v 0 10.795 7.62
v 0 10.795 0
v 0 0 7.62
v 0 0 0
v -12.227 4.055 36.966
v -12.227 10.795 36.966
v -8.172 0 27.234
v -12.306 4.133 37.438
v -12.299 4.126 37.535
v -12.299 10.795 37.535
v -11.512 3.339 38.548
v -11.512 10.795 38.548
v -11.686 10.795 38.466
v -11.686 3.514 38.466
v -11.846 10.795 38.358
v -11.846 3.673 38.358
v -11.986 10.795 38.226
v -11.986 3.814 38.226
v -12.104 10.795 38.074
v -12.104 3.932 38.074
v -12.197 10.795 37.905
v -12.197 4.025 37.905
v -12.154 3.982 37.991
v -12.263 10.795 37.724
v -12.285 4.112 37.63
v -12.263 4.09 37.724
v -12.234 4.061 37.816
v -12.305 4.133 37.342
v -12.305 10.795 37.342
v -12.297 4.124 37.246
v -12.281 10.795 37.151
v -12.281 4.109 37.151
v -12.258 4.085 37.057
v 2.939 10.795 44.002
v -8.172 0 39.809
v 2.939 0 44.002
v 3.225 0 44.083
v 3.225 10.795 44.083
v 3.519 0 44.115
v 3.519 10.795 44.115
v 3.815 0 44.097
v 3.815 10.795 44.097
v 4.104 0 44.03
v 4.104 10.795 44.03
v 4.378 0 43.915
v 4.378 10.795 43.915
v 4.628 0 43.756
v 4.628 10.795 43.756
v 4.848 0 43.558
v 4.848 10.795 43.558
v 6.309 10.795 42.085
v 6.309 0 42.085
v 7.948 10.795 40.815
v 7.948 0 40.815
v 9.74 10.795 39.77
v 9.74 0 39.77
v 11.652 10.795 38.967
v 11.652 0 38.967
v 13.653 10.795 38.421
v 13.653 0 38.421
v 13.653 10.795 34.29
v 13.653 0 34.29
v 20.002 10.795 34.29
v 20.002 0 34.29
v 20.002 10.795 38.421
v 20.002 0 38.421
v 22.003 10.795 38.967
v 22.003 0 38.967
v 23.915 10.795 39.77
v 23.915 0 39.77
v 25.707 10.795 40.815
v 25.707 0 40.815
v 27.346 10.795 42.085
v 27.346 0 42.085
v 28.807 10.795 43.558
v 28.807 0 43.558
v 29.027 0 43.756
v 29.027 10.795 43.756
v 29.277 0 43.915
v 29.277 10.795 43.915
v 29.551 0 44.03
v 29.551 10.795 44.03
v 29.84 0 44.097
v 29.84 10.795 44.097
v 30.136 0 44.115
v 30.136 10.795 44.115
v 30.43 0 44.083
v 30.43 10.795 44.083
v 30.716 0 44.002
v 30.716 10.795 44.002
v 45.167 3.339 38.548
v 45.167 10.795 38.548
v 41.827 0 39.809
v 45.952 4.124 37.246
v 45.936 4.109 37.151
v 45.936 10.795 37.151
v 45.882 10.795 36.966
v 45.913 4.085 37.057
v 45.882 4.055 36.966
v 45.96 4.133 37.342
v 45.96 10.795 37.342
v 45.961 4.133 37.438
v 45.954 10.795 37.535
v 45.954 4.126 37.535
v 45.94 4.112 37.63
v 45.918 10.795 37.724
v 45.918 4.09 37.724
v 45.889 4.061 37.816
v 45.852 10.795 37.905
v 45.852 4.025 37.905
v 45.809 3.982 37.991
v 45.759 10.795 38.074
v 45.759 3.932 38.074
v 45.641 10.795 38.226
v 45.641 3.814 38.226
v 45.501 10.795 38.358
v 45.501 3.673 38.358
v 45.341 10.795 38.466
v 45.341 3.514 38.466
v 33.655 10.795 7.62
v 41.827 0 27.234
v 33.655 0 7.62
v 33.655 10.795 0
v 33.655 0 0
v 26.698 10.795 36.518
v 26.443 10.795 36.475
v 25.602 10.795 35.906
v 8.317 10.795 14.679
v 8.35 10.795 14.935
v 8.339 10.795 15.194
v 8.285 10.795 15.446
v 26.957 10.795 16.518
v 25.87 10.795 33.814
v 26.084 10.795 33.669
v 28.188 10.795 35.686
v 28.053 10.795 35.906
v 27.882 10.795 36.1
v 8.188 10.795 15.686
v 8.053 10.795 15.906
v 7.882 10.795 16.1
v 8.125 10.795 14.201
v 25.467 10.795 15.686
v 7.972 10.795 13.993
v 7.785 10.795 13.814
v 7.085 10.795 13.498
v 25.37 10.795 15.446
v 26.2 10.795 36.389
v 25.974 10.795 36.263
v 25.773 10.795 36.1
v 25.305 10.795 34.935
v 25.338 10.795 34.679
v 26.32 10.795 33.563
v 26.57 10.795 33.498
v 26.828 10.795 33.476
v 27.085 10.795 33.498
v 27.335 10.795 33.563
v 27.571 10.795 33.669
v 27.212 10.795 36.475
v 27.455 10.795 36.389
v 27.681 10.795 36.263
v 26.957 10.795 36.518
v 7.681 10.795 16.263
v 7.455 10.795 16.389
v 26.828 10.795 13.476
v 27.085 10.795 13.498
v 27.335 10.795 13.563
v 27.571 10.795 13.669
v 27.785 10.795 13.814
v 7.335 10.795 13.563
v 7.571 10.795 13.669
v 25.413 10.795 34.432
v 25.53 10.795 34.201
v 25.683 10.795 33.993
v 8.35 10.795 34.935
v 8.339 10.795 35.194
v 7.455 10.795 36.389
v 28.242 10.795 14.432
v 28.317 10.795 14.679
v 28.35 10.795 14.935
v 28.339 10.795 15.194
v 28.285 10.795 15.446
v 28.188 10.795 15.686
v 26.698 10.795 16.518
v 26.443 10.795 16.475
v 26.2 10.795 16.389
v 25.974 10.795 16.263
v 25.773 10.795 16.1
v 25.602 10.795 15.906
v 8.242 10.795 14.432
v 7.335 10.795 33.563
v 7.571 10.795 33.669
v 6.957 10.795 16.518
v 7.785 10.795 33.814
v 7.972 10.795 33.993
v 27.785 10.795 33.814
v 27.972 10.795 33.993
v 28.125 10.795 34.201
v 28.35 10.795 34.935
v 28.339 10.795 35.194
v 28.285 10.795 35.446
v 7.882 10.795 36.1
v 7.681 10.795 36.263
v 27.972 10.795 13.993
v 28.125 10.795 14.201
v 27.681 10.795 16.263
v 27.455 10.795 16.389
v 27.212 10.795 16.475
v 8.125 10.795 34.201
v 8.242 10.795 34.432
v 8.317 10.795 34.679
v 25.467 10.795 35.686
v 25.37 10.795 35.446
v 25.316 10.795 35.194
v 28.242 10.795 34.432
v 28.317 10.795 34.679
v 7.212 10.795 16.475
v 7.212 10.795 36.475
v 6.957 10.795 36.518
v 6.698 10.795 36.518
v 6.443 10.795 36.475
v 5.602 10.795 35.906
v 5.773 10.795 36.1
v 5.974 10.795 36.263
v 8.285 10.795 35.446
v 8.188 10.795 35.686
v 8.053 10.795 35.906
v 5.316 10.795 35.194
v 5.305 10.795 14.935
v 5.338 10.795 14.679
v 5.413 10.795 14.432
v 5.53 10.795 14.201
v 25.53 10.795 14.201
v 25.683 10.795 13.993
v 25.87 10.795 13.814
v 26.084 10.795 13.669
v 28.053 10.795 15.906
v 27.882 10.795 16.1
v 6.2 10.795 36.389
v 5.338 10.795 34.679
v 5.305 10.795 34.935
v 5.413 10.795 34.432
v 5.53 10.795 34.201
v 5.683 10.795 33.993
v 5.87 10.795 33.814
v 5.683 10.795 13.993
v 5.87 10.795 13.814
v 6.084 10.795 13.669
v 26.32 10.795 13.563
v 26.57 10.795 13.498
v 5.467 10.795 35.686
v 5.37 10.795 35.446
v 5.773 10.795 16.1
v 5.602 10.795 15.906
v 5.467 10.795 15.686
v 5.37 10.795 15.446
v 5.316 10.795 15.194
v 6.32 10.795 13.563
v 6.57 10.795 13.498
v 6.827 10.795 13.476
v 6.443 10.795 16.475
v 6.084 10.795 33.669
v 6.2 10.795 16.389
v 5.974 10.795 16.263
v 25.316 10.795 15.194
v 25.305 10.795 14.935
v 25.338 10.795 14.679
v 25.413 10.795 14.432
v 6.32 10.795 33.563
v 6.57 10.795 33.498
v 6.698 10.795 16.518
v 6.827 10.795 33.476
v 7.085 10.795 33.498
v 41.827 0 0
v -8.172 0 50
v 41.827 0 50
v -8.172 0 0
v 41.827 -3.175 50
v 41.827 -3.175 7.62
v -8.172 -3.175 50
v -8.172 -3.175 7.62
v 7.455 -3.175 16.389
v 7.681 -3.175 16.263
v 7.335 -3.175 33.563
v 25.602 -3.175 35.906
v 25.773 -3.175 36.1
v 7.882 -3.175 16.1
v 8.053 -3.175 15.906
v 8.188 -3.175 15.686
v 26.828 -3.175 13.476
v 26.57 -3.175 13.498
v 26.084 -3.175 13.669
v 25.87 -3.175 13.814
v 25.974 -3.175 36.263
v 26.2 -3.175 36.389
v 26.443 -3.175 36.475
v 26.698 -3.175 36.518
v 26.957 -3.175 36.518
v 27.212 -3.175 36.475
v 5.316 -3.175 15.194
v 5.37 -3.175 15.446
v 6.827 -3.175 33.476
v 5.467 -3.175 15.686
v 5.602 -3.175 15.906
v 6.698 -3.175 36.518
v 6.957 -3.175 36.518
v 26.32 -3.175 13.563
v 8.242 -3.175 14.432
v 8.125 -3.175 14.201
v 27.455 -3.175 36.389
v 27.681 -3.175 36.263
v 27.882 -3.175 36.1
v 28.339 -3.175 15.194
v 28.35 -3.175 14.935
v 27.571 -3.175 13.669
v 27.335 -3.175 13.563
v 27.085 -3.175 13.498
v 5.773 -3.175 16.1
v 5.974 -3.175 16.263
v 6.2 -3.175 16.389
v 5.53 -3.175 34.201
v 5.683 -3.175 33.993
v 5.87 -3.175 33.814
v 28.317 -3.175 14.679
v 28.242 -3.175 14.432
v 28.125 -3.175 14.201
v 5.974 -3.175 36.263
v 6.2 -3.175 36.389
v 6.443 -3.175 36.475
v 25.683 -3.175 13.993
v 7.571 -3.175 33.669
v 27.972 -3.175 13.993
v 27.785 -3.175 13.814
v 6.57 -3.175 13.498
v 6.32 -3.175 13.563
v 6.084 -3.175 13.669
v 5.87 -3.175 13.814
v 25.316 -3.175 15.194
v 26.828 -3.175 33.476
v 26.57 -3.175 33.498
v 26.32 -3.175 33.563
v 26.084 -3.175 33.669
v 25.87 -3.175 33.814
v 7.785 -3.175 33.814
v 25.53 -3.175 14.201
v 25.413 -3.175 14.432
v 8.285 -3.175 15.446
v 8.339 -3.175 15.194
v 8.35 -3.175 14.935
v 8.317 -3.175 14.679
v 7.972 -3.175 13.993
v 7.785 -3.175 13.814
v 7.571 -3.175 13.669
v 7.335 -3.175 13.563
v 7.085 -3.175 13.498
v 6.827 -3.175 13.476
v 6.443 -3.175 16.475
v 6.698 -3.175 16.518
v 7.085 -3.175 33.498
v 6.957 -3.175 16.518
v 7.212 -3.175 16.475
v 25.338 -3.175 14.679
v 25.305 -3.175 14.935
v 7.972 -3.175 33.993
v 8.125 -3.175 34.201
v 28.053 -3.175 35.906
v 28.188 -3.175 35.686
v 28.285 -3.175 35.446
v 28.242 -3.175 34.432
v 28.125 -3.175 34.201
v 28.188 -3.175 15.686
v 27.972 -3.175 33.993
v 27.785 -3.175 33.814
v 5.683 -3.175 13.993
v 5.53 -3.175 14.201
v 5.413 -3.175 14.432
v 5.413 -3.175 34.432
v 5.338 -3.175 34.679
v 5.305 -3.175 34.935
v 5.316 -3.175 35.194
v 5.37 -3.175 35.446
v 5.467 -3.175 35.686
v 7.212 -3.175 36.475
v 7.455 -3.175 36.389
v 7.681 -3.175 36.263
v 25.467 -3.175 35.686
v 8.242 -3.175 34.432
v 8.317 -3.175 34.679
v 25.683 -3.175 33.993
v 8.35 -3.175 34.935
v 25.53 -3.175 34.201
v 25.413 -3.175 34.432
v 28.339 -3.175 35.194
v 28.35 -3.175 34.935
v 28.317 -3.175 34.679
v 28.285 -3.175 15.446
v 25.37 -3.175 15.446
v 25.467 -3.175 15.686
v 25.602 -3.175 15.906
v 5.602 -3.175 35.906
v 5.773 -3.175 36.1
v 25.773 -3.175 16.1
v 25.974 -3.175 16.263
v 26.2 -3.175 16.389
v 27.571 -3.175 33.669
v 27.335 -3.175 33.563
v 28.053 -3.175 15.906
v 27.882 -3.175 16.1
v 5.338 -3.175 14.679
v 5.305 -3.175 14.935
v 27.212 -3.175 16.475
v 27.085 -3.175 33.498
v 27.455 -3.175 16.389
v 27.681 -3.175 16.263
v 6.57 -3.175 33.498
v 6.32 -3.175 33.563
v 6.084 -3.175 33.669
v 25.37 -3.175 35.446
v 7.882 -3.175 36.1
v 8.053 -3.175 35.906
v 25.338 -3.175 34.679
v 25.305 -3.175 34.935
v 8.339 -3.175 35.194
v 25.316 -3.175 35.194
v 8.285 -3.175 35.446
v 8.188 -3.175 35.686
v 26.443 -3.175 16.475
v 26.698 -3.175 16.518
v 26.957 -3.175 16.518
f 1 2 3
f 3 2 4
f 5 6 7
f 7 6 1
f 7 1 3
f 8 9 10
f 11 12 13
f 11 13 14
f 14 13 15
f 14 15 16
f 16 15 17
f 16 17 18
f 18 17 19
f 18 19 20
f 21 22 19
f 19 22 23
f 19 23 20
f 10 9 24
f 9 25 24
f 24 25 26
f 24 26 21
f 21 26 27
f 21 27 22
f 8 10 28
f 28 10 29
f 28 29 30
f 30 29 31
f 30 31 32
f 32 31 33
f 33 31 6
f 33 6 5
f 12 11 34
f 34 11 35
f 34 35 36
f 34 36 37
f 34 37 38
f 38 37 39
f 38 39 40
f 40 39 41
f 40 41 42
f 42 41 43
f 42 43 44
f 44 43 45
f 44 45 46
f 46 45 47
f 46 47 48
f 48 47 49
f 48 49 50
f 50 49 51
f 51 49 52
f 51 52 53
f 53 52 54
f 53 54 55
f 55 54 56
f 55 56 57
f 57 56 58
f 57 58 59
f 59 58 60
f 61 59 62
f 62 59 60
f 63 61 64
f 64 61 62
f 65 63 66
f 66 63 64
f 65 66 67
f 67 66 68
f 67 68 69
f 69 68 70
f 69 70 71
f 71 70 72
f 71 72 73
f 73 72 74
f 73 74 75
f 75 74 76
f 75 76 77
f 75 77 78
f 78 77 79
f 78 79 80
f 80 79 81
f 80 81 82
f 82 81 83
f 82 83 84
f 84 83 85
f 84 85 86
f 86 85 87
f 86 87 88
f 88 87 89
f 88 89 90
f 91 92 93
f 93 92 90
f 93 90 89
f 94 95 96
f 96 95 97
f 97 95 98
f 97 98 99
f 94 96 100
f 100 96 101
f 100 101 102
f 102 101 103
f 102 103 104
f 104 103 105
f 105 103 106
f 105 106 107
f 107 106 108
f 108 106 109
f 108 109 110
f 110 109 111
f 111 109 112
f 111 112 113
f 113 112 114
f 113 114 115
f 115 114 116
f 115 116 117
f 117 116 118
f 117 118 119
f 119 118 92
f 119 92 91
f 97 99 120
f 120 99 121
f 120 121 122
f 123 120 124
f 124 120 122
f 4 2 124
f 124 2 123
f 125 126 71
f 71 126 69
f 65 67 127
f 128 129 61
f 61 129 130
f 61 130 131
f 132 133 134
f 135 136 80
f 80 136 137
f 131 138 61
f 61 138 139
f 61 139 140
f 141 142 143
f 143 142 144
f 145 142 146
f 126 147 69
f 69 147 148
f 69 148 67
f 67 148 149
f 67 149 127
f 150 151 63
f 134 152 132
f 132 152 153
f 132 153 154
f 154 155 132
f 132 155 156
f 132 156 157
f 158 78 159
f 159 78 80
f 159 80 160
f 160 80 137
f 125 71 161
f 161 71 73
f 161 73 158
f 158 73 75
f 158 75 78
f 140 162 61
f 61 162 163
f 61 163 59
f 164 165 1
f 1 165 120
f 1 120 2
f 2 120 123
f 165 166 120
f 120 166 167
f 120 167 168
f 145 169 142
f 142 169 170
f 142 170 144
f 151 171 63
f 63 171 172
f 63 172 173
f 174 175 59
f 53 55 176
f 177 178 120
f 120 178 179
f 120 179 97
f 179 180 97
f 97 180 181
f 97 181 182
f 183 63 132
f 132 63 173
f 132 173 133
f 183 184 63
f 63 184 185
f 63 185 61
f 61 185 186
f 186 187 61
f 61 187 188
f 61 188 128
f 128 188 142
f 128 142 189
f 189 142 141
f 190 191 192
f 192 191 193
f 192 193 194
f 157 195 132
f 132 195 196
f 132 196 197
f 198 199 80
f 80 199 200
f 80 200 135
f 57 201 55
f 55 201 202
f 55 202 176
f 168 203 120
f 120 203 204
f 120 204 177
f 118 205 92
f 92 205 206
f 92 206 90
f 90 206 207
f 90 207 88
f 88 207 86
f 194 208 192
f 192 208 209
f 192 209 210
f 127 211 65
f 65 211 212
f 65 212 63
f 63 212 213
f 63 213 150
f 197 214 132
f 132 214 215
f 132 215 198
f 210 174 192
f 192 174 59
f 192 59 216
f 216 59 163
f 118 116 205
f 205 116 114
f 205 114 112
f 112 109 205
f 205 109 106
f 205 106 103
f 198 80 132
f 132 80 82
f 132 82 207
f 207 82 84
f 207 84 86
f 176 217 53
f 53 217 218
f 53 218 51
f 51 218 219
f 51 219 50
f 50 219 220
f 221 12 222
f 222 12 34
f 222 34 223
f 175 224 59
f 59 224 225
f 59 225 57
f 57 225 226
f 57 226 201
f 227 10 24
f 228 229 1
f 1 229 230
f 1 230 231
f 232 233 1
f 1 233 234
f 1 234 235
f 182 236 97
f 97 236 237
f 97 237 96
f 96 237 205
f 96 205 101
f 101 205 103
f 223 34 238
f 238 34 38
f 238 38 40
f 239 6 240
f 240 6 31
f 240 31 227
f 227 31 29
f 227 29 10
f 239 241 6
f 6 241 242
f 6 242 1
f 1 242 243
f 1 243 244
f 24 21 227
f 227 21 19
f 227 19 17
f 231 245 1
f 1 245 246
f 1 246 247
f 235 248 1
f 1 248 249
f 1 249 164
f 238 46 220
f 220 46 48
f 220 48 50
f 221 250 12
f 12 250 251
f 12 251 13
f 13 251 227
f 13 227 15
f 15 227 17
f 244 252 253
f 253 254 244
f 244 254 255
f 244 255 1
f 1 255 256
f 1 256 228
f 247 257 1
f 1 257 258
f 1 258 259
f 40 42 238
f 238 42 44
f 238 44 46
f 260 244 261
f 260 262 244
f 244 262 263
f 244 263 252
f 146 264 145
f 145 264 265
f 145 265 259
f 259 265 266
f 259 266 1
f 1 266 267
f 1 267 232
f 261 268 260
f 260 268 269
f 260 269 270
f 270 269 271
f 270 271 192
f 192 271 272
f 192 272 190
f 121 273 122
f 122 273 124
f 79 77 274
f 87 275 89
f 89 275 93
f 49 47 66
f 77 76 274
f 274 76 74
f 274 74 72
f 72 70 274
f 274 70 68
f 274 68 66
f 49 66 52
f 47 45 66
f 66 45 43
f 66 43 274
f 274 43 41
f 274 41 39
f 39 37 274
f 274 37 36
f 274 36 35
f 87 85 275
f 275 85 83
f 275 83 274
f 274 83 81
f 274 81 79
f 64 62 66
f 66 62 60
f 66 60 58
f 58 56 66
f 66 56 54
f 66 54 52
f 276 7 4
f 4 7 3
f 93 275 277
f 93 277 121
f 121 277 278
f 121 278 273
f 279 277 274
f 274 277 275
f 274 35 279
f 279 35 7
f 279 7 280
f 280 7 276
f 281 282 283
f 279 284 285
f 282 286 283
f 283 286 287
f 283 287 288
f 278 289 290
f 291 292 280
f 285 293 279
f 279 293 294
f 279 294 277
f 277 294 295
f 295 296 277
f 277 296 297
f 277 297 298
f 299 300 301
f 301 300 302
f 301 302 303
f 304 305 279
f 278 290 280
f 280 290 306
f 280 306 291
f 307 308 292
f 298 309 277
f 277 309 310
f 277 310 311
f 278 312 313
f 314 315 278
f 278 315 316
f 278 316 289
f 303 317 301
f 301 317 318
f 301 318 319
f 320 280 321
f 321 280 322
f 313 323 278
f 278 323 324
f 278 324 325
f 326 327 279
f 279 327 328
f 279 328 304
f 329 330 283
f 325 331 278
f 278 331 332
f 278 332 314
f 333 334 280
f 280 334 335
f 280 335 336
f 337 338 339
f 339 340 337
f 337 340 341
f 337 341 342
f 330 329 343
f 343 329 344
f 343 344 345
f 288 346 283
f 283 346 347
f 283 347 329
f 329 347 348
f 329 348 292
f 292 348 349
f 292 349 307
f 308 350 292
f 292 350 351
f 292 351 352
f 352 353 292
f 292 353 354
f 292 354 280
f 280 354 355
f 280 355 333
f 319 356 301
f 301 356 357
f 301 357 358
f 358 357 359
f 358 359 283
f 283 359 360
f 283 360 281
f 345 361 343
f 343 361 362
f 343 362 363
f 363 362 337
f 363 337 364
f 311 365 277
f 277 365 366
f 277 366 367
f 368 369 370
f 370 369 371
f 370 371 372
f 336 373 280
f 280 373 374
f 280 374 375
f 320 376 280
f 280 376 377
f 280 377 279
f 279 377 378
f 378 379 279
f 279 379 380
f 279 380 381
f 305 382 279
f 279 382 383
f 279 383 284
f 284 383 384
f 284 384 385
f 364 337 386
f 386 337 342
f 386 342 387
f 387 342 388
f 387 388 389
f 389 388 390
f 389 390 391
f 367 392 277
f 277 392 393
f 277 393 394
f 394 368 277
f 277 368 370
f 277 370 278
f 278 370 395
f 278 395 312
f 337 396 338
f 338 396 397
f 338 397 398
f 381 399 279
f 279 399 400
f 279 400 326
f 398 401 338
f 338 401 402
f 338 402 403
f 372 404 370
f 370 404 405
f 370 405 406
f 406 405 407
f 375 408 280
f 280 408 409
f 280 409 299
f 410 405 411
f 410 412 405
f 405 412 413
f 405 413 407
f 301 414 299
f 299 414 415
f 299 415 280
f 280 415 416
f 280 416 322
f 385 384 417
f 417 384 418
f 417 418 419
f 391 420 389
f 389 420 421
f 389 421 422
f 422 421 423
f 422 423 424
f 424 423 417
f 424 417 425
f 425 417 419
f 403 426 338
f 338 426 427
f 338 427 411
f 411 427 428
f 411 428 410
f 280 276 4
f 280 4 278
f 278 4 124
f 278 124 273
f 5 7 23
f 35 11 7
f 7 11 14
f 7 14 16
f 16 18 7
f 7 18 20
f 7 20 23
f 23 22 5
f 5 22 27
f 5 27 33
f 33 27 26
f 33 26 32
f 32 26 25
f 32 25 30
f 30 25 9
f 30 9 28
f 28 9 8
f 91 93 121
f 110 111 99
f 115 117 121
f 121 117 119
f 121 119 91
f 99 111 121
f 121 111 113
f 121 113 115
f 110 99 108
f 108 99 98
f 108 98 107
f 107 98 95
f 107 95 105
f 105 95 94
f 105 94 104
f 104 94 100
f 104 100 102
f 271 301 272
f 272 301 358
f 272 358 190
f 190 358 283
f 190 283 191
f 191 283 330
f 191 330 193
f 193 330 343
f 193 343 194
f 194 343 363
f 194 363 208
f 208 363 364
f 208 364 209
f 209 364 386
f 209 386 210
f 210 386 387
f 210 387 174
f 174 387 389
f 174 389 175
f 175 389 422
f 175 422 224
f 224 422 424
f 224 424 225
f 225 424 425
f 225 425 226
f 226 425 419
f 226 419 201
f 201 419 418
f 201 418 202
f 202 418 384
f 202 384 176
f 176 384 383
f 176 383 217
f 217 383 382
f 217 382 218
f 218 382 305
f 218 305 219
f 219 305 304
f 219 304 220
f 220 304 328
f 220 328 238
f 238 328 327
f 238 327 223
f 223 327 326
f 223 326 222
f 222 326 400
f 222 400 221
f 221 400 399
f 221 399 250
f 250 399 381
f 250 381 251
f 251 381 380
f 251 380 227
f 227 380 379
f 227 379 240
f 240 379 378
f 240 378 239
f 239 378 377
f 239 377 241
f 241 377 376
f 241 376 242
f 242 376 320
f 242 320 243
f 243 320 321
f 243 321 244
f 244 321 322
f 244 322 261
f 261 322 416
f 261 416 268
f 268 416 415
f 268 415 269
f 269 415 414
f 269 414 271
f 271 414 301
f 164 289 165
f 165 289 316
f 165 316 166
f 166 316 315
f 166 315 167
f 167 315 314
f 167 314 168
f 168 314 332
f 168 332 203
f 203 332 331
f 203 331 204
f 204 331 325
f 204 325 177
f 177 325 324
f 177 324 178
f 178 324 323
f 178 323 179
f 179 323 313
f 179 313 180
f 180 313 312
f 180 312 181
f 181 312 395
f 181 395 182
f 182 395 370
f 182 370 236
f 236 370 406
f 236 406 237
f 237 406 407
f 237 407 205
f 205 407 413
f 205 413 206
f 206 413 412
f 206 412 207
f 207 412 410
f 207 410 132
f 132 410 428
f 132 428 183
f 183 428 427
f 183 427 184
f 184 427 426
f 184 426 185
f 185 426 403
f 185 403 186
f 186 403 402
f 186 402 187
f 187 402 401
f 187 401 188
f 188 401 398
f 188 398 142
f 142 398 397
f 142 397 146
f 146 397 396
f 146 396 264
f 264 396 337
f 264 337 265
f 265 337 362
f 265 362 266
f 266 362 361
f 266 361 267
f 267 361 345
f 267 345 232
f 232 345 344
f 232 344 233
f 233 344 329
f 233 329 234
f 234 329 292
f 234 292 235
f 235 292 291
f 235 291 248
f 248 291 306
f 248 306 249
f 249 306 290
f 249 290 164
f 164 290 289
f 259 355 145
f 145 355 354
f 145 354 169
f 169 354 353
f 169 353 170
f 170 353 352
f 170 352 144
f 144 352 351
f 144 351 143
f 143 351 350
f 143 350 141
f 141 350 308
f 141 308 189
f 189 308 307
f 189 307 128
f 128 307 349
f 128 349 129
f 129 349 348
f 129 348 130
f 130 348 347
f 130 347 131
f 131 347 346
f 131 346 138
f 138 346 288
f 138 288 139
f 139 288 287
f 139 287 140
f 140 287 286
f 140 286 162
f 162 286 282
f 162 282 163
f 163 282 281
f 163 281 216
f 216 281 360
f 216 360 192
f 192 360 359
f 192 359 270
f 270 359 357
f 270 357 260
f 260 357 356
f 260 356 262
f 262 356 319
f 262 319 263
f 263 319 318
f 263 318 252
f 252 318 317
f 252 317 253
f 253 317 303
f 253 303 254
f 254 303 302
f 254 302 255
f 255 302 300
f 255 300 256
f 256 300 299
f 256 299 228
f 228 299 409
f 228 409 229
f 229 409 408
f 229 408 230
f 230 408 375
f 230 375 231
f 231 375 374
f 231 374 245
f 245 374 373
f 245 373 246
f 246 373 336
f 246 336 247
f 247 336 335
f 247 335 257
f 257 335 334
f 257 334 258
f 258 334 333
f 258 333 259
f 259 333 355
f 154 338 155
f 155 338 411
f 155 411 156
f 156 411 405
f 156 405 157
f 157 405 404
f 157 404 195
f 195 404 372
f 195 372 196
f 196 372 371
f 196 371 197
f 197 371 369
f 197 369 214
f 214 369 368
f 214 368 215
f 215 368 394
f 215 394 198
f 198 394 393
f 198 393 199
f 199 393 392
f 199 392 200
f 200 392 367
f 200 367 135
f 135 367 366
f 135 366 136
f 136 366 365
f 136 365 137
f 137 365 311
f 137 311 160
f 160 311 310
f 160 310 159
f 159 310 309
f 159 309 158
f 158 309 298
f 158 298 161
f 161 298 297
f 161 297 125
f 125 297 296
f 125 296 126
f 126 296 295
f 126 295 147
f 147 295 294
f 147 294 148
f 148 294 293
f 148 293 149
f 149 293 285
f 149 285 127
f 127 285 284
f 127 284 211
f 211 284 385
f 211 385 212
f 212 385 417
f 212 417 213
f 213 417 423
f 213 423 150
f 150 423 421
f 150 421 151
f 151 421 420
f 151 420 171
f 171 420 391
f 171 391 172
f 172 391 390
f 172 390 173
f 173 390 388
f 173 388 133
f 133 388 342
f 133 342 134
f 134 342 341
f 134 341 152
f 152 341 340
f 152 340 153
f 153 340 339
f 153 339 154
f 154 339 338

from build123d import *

# Parameters (mm, degrees)
BOSS_EXTRUDE1_DEPTH = 10.795
BOSS_EXTRUDE2_DEPTH = 3.175
CUT_EXTRUDE1_DEPTH  = 55.133861737
CUT_EXTRUDE3_DEPTH  = 50.9999
SKETCH5_R           = 1.524
CUT_EXTRUDE4_DEPTH  = 14.97


with BuildPart() as part:
    # Sketch1 → Boss-Extrude1 (new body)
    with BuildSketch(Plane(origin=(0, 0, 0), x_dir=(1, 0, 0), z_dir=(0, 1, 0))):
        with BuildLine():
            Line((0, 0), (33.655, 0))
            Line((33.655, 0), (33.655, -7.62))
            Line((33.655, -7.62), (45.882312708, -36.965550498))
            ThreePointArc((45.882312708, -36.965550498), (45.852364547, -37.905157075), (45.166785817, -38.548382711))
            Line((45.166785817, -38.548382711), (30.715714183, -44.001617289))
            ThreePointArc((30.715714183, -44.001617289), (29.6938714, -44.069401845), (28.806656699, -43.557926045))
            ThreePointArc((28.806656699, -43.557926045), (24.828111607, -40.263477877), (20.0025, -38.420740133))
            Line((20.0025, -38.420740133), (20.0025, -38.1))
            Line((20.0025, -38.1), (20.0025, -34.29))
            Line((20.0025, -34.29), (13.6525, -34.29))
            Line((13.6525, -34.29), (13.6525, -38.1))
            Line((13.6525, -38.1), (13.6525, -38.420740133))
            ThreePointArc((13.6525, -38.420740133), (8.826888393, -40.263477877), (4.848343301, -43.557926045))
            ThreePointArc((4.848343301, -43.557926045), (3.9611286, -44.069401845), (2.939285817, -44.001617289))
            Line((2.939285817, -44.001617289), (-11.511785817, -38.548382711))
            ThreePointArc((-11.511785817, -38.548382711), (-12.197364547, -37.905157075), (-12.227312708, -36.965550498))
            Line((-12.227312708, -36.965550498), (0, -7.62))
            Line((0, -7.62), (0, 0))
        make_face()
    extrude(amount=BOSS_EXTRUDE1_DEPTH)

    # Sketch2 → Boss-Extrude2 (add)
    with BuildSketch(Plane.XZ):
        Polygon((16.8275, 0), (-8.17245, 0), (-8.17245, 49.9999), (41.82745, 49.9999), (41.82745, 0), align=None)
    extrude(amount=BOSS_EXTRUDE2_DEPTH)

    # Sketch3 → Cut-Extrude1 (cut, through all)
    with BuildSketch(Plane.ZY.offset(8.17245)):
        Polygon((7.62, -3.175), (0, 0), (0, -3.175), align=None)
    extrude(amount=-CUT_EXTRUDE1_DEPTH, mode=Mode.SUBTRACT)

    # Sketch4 → Cut-Extrude3 (cut, through all)
    with BuildSketch(Plane(origin=(0, 0, 0), x_dir=(-1, 0, 0), z_dir=(0, 0, -1))):
        Polygon((-41.82745, 0), (-47.971594171, 0), (-47.971594171, 6.144144171), align=None)
        Polygon((8.17245, 0), (16.073165013, 0), (16.073165013, 7.900715013), align=None)
    extrude(amount=-CUT_EXTRUDE3_DEPTH, mode=Mode.SUBTRACT)

    # Sketch5 → Cut-Extrude4 (cut, through all)
    with BuildSketch(Plane.XZ.offset(3.175)):
        with Locations((6.8274946, 34.9999554)):
            Circle(SKETCH5_R)
        with Locations((26.8275054, 34.9999554)):
            Circle(SKETCH5_R)
        with Locations((6.8274946, 14.9999446)):
            Circle(SKETCH5_R)
        with Locations((26.8275054, 14.9999446)):
            Circle(SKETCH5_R)
    extrude(amount=-CUT_EXTRUDE4_DEPTH, mode=Mode.SUBTRACT)


solid = part.part
